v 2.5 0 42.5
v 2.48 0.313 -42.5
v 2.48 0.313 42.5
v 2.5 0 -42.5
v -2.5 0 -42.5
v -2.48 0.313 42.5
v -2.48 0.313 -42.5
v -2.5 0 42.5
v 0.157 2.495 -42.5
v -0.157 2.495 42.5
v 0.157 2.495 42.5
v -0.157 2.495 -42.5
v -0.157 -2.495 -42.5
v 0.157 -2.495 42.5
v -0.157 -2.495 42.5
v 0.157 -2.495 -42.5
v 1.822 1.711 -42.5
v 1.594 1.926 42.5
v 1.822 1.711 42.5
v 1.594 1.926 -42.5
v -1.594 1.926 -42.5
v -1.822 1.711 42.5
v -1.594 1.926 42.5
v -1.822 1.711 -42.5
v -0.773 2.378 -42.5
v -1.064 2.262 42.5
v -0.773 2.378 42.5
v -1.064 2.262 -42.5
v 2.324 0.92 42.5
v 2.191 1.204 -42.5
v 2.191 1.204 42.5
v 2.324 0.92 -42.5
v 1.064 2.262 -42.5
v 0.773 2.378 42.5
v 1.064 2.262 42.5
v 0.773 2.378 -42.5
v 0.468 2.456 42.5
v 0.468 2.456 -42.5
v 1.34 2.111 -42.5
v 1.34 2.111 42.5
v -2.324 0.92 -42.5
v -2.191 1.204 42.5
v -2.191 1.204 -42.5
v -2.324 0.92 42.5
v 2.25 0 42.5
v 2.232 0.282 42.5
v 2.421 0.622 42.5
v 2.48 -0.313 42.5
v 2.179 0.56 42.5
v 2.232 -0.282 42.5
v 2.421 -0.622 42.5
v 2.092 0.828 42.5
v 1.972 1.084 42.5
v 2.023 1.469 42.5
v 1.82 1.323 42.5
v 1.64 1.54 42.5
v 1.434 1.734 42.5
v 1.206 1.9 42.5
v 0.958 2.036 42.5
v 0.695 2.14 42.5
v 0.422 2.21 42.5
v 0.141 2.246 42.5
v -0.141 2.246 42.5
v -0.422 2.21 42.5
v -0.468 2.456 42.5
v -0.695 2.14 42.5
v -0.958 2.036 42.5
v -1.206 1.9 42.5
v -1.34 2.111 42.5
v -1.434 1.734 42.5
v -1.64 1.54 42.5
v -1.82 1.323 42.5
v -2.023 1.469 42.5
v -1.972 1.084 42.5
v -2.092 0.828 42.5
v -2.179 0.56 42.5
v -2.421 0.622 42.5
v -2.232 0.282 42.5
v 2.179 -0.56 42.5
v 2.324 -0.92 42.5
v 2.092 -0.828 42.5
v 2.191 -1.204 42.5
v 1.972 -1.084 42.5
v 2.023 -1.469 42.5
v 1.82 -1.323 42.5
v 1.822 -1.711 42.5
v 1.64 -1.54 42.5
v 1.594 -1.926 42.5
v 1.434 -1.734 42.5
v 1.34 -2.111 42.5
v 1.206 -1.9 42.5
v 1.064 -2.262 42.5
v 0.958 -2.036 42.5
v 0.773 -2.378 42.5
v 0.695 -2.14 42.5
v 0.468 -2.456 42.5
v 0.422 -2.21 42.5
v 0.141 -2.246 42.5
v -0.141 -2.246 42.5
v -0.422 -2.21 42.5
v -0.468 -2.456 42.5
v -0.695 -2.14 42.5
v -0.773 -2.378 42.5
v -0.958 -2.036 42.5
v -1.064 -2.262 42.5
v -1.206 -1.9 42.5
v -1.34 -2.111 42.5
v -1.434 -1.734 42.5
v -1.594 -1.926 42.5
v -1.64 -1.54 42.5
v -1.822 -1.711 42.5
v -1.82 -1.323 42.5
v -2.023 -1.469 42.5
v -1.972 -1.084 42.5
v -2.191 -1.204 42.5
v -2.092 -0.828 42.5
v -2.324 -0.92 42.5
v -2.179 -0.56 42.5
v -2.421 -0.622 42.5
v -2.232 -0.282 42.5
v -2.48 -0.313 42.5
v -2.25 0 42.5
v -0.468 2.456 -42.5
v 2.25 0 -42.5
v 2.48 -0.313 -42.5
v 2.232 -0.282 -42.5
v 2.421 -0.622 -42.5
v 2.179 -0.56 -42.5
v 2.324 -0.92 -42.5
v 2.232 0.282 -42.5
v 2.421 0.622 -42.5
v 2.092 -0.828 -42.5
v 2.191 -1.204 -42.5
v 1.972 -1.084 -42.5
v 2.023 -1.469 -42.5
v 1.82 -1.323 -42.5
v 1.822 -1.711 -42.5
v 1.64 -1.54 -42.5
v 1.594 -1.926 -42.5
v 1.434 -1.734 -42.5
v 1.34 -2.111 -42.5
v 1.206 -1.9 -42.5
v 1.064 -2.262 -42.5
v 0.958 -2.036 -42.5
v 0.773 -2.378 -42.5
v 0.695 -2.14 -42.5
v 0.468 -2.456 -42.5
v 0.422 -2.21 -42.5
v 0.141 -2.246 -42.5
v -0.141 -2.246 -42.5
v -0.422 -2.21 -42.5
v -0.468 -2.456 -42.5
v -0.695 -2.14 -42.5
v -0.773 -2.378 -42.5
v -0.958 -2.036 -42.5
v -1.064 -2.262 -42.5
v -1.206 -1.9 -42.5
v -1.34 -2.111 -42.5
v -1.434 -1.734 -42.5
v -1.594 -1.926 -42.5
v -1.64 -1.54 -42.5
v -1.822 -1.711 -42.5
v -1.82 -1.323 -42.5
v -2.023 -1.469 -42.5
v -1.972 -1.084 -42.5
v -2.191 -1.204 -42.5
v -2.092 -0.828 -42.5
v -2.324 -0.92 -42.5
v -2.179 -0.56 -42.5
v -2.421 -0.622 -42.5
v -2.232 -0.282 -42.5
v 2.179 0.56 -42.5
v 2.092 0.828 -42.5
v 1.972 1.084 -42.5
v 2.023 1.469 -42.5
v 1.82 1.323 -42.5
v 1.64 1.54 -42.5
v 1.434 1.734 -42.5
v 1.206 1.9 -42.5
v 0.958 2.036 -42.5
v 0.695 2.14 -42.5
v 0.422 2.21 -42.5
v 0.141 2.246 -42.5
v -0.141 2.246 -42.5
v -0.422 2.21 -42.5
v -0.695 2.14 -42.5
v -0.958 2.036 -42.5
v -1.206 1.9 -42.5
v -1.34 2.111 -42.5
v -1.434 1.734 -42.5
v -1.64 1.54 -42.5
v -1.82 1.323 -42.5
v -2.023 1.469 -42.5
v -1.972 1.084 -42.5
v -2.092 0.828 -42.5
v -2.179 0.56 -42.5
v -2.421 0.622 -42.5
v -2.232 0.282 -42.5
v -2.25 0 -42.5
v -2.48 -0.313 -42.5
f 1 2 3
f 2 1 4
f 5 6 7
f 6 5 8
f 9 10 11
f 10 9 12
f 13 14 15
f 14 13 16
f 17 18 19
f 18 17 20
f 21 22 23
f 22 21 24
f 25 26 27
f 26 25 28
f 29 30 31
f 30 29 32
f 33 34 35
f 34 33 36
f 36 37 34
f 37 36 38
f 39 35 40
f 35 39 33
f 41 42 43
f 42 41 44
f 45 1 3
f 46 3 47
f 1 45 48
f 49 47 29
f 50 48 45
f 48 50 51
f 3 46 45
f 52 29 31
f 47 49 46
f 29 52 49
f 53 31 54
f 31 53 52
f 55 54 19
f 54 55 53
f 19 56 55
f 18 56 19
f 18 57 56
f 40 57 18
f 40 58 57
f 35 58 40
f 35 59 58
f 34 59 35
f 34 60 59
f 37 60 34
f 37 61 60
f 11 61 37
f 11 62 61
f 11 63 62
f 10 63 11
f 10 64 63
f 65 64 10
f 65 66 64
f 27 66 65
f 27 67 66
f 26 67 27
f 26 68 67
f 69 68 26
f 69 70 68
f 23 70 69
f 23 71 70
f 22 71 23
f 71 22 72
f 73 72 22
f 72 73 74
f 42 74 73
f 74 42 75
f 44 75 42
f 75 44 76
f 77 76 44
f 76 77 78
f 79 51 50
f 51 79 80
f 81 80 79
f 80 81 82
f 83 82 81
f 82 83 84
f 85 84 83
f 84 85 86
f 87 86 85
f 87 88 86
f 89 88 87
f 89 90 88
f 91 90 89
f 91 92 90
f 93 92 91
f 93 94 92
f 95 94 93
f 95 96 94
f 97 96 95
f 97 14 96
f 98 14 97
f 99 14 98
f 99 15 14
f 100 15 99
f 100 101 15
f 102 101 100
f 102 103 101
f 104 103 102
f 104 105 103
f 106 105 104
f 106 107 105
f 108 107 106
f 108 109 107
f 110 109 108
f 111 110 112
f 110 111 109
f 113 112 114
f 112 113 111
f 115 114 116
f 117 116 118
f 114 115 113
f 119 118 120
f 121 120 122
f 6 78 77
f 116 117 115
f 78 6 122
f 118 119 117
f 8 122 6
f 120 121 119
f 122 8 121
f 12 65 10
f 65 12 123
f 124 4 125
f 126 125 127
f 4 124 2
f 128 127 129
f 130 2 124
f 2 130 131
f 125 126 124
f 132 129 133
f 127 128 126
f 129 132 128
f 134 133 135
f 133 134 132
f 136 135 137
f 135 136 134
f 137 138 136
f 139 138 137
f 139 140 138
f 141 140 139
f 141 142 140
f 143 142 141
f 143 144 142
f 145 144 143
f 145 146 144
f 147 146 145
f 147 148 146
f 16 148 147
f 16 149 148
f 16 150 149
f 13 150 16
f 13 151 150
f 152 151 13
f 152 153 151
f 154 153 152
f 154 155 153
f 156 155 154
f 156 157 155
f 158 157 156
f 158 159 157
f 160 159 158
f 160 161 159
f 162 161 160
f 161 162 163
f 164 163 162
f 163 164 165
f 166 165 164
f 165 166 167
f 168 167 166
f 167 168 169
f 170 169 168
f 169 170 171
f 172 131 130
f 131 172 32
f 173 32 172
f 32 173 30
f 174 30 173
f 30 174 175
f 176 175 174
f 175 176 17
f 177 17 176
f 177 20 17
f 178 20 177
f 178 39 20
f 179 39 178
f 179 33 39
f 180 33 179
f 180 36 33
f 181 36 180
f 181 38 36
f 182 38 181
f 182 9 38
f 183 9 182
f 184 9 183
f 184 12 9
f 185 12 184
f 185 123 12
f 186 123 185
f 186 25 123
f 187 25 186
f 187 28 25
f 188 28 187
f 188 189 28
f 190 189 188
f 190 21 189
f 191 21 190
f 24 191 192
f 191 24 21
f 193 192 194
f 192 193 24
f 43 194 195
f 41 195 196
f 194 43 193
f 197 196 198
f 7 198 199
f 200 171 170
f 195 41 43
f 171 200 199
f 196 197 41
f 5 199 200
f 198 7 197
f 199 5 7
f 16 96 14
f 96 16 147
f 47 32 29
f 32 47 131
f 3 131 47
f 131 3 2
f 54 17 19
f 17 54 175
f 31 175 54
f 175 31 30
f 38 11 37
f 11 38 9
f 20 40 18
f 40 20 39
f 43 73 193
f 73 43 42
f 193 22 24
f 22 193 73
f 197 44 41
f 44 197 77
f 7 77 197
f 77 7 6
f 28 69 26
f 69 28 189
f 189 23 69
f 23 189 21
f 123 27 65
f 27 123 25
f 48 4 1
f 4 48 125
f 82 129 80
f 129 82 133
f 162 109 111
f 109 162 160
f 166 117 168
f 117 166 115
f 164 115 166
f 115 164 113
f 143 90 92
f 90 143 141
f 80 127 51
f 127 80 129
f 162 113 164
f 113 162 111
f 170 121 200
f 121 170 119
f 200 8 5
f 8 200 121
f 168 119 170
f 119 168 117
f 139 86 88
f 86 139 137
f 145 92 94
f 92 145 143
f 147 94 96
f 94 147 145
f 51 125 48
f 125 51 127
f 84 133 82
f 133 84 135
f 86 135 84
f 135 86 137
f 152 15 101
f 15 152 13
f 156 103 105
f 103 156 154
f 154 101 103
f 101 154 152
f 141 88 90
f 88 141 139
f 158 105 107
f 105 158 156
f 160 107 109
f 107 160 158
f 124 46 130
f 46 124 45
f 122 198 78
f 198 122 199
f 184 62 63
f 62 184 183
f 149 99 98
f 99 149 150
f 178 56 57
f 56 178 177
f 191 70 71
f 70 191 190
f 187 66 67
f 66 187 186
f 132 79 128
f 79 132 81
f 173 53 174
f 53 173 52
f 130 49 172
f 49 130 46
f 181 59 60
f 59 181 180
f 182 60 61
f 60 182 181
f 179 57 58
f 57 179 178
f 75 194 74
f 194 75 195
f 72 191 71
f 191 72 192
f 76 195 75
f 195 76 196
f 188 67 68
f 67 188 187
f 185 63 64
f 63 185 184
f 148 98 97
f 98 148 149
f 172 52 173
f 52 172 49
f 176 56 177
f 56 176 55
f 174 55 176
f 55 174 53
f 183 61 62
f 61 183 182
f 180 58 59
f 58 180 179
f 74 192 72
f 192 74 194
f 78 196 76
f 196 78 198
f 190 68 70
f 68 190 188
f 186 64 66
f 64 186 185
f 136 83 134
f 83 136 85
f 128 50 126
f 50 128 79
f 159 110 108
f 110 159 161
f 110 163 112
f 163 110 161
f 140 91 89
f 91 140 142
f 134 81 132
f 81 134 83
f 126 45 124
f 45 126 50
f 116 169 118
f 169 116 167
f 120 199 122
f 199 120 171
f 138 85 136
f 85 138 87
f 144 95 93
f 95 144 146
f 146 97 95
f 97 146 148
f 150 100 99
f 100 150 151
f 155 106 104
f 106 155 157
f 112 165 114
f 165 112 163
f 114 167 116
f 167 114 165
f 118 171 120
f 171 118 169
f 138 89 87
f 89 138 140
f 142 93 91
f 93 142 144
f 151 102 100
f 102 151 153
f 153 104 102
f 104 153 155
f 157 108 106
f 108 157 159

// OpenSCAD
$fn = 50;


difference() {
	union() {
		translate(v = [0, 0, -42.5000000000]) {
			cylinder(h = 85, r = 2.5000000000);
		}
	}
	union() {
		translate(v = [0, 0, -100.0000000000]) {
			cylinder(h = 200, r = 2.2500000000);
		}
	}
}
